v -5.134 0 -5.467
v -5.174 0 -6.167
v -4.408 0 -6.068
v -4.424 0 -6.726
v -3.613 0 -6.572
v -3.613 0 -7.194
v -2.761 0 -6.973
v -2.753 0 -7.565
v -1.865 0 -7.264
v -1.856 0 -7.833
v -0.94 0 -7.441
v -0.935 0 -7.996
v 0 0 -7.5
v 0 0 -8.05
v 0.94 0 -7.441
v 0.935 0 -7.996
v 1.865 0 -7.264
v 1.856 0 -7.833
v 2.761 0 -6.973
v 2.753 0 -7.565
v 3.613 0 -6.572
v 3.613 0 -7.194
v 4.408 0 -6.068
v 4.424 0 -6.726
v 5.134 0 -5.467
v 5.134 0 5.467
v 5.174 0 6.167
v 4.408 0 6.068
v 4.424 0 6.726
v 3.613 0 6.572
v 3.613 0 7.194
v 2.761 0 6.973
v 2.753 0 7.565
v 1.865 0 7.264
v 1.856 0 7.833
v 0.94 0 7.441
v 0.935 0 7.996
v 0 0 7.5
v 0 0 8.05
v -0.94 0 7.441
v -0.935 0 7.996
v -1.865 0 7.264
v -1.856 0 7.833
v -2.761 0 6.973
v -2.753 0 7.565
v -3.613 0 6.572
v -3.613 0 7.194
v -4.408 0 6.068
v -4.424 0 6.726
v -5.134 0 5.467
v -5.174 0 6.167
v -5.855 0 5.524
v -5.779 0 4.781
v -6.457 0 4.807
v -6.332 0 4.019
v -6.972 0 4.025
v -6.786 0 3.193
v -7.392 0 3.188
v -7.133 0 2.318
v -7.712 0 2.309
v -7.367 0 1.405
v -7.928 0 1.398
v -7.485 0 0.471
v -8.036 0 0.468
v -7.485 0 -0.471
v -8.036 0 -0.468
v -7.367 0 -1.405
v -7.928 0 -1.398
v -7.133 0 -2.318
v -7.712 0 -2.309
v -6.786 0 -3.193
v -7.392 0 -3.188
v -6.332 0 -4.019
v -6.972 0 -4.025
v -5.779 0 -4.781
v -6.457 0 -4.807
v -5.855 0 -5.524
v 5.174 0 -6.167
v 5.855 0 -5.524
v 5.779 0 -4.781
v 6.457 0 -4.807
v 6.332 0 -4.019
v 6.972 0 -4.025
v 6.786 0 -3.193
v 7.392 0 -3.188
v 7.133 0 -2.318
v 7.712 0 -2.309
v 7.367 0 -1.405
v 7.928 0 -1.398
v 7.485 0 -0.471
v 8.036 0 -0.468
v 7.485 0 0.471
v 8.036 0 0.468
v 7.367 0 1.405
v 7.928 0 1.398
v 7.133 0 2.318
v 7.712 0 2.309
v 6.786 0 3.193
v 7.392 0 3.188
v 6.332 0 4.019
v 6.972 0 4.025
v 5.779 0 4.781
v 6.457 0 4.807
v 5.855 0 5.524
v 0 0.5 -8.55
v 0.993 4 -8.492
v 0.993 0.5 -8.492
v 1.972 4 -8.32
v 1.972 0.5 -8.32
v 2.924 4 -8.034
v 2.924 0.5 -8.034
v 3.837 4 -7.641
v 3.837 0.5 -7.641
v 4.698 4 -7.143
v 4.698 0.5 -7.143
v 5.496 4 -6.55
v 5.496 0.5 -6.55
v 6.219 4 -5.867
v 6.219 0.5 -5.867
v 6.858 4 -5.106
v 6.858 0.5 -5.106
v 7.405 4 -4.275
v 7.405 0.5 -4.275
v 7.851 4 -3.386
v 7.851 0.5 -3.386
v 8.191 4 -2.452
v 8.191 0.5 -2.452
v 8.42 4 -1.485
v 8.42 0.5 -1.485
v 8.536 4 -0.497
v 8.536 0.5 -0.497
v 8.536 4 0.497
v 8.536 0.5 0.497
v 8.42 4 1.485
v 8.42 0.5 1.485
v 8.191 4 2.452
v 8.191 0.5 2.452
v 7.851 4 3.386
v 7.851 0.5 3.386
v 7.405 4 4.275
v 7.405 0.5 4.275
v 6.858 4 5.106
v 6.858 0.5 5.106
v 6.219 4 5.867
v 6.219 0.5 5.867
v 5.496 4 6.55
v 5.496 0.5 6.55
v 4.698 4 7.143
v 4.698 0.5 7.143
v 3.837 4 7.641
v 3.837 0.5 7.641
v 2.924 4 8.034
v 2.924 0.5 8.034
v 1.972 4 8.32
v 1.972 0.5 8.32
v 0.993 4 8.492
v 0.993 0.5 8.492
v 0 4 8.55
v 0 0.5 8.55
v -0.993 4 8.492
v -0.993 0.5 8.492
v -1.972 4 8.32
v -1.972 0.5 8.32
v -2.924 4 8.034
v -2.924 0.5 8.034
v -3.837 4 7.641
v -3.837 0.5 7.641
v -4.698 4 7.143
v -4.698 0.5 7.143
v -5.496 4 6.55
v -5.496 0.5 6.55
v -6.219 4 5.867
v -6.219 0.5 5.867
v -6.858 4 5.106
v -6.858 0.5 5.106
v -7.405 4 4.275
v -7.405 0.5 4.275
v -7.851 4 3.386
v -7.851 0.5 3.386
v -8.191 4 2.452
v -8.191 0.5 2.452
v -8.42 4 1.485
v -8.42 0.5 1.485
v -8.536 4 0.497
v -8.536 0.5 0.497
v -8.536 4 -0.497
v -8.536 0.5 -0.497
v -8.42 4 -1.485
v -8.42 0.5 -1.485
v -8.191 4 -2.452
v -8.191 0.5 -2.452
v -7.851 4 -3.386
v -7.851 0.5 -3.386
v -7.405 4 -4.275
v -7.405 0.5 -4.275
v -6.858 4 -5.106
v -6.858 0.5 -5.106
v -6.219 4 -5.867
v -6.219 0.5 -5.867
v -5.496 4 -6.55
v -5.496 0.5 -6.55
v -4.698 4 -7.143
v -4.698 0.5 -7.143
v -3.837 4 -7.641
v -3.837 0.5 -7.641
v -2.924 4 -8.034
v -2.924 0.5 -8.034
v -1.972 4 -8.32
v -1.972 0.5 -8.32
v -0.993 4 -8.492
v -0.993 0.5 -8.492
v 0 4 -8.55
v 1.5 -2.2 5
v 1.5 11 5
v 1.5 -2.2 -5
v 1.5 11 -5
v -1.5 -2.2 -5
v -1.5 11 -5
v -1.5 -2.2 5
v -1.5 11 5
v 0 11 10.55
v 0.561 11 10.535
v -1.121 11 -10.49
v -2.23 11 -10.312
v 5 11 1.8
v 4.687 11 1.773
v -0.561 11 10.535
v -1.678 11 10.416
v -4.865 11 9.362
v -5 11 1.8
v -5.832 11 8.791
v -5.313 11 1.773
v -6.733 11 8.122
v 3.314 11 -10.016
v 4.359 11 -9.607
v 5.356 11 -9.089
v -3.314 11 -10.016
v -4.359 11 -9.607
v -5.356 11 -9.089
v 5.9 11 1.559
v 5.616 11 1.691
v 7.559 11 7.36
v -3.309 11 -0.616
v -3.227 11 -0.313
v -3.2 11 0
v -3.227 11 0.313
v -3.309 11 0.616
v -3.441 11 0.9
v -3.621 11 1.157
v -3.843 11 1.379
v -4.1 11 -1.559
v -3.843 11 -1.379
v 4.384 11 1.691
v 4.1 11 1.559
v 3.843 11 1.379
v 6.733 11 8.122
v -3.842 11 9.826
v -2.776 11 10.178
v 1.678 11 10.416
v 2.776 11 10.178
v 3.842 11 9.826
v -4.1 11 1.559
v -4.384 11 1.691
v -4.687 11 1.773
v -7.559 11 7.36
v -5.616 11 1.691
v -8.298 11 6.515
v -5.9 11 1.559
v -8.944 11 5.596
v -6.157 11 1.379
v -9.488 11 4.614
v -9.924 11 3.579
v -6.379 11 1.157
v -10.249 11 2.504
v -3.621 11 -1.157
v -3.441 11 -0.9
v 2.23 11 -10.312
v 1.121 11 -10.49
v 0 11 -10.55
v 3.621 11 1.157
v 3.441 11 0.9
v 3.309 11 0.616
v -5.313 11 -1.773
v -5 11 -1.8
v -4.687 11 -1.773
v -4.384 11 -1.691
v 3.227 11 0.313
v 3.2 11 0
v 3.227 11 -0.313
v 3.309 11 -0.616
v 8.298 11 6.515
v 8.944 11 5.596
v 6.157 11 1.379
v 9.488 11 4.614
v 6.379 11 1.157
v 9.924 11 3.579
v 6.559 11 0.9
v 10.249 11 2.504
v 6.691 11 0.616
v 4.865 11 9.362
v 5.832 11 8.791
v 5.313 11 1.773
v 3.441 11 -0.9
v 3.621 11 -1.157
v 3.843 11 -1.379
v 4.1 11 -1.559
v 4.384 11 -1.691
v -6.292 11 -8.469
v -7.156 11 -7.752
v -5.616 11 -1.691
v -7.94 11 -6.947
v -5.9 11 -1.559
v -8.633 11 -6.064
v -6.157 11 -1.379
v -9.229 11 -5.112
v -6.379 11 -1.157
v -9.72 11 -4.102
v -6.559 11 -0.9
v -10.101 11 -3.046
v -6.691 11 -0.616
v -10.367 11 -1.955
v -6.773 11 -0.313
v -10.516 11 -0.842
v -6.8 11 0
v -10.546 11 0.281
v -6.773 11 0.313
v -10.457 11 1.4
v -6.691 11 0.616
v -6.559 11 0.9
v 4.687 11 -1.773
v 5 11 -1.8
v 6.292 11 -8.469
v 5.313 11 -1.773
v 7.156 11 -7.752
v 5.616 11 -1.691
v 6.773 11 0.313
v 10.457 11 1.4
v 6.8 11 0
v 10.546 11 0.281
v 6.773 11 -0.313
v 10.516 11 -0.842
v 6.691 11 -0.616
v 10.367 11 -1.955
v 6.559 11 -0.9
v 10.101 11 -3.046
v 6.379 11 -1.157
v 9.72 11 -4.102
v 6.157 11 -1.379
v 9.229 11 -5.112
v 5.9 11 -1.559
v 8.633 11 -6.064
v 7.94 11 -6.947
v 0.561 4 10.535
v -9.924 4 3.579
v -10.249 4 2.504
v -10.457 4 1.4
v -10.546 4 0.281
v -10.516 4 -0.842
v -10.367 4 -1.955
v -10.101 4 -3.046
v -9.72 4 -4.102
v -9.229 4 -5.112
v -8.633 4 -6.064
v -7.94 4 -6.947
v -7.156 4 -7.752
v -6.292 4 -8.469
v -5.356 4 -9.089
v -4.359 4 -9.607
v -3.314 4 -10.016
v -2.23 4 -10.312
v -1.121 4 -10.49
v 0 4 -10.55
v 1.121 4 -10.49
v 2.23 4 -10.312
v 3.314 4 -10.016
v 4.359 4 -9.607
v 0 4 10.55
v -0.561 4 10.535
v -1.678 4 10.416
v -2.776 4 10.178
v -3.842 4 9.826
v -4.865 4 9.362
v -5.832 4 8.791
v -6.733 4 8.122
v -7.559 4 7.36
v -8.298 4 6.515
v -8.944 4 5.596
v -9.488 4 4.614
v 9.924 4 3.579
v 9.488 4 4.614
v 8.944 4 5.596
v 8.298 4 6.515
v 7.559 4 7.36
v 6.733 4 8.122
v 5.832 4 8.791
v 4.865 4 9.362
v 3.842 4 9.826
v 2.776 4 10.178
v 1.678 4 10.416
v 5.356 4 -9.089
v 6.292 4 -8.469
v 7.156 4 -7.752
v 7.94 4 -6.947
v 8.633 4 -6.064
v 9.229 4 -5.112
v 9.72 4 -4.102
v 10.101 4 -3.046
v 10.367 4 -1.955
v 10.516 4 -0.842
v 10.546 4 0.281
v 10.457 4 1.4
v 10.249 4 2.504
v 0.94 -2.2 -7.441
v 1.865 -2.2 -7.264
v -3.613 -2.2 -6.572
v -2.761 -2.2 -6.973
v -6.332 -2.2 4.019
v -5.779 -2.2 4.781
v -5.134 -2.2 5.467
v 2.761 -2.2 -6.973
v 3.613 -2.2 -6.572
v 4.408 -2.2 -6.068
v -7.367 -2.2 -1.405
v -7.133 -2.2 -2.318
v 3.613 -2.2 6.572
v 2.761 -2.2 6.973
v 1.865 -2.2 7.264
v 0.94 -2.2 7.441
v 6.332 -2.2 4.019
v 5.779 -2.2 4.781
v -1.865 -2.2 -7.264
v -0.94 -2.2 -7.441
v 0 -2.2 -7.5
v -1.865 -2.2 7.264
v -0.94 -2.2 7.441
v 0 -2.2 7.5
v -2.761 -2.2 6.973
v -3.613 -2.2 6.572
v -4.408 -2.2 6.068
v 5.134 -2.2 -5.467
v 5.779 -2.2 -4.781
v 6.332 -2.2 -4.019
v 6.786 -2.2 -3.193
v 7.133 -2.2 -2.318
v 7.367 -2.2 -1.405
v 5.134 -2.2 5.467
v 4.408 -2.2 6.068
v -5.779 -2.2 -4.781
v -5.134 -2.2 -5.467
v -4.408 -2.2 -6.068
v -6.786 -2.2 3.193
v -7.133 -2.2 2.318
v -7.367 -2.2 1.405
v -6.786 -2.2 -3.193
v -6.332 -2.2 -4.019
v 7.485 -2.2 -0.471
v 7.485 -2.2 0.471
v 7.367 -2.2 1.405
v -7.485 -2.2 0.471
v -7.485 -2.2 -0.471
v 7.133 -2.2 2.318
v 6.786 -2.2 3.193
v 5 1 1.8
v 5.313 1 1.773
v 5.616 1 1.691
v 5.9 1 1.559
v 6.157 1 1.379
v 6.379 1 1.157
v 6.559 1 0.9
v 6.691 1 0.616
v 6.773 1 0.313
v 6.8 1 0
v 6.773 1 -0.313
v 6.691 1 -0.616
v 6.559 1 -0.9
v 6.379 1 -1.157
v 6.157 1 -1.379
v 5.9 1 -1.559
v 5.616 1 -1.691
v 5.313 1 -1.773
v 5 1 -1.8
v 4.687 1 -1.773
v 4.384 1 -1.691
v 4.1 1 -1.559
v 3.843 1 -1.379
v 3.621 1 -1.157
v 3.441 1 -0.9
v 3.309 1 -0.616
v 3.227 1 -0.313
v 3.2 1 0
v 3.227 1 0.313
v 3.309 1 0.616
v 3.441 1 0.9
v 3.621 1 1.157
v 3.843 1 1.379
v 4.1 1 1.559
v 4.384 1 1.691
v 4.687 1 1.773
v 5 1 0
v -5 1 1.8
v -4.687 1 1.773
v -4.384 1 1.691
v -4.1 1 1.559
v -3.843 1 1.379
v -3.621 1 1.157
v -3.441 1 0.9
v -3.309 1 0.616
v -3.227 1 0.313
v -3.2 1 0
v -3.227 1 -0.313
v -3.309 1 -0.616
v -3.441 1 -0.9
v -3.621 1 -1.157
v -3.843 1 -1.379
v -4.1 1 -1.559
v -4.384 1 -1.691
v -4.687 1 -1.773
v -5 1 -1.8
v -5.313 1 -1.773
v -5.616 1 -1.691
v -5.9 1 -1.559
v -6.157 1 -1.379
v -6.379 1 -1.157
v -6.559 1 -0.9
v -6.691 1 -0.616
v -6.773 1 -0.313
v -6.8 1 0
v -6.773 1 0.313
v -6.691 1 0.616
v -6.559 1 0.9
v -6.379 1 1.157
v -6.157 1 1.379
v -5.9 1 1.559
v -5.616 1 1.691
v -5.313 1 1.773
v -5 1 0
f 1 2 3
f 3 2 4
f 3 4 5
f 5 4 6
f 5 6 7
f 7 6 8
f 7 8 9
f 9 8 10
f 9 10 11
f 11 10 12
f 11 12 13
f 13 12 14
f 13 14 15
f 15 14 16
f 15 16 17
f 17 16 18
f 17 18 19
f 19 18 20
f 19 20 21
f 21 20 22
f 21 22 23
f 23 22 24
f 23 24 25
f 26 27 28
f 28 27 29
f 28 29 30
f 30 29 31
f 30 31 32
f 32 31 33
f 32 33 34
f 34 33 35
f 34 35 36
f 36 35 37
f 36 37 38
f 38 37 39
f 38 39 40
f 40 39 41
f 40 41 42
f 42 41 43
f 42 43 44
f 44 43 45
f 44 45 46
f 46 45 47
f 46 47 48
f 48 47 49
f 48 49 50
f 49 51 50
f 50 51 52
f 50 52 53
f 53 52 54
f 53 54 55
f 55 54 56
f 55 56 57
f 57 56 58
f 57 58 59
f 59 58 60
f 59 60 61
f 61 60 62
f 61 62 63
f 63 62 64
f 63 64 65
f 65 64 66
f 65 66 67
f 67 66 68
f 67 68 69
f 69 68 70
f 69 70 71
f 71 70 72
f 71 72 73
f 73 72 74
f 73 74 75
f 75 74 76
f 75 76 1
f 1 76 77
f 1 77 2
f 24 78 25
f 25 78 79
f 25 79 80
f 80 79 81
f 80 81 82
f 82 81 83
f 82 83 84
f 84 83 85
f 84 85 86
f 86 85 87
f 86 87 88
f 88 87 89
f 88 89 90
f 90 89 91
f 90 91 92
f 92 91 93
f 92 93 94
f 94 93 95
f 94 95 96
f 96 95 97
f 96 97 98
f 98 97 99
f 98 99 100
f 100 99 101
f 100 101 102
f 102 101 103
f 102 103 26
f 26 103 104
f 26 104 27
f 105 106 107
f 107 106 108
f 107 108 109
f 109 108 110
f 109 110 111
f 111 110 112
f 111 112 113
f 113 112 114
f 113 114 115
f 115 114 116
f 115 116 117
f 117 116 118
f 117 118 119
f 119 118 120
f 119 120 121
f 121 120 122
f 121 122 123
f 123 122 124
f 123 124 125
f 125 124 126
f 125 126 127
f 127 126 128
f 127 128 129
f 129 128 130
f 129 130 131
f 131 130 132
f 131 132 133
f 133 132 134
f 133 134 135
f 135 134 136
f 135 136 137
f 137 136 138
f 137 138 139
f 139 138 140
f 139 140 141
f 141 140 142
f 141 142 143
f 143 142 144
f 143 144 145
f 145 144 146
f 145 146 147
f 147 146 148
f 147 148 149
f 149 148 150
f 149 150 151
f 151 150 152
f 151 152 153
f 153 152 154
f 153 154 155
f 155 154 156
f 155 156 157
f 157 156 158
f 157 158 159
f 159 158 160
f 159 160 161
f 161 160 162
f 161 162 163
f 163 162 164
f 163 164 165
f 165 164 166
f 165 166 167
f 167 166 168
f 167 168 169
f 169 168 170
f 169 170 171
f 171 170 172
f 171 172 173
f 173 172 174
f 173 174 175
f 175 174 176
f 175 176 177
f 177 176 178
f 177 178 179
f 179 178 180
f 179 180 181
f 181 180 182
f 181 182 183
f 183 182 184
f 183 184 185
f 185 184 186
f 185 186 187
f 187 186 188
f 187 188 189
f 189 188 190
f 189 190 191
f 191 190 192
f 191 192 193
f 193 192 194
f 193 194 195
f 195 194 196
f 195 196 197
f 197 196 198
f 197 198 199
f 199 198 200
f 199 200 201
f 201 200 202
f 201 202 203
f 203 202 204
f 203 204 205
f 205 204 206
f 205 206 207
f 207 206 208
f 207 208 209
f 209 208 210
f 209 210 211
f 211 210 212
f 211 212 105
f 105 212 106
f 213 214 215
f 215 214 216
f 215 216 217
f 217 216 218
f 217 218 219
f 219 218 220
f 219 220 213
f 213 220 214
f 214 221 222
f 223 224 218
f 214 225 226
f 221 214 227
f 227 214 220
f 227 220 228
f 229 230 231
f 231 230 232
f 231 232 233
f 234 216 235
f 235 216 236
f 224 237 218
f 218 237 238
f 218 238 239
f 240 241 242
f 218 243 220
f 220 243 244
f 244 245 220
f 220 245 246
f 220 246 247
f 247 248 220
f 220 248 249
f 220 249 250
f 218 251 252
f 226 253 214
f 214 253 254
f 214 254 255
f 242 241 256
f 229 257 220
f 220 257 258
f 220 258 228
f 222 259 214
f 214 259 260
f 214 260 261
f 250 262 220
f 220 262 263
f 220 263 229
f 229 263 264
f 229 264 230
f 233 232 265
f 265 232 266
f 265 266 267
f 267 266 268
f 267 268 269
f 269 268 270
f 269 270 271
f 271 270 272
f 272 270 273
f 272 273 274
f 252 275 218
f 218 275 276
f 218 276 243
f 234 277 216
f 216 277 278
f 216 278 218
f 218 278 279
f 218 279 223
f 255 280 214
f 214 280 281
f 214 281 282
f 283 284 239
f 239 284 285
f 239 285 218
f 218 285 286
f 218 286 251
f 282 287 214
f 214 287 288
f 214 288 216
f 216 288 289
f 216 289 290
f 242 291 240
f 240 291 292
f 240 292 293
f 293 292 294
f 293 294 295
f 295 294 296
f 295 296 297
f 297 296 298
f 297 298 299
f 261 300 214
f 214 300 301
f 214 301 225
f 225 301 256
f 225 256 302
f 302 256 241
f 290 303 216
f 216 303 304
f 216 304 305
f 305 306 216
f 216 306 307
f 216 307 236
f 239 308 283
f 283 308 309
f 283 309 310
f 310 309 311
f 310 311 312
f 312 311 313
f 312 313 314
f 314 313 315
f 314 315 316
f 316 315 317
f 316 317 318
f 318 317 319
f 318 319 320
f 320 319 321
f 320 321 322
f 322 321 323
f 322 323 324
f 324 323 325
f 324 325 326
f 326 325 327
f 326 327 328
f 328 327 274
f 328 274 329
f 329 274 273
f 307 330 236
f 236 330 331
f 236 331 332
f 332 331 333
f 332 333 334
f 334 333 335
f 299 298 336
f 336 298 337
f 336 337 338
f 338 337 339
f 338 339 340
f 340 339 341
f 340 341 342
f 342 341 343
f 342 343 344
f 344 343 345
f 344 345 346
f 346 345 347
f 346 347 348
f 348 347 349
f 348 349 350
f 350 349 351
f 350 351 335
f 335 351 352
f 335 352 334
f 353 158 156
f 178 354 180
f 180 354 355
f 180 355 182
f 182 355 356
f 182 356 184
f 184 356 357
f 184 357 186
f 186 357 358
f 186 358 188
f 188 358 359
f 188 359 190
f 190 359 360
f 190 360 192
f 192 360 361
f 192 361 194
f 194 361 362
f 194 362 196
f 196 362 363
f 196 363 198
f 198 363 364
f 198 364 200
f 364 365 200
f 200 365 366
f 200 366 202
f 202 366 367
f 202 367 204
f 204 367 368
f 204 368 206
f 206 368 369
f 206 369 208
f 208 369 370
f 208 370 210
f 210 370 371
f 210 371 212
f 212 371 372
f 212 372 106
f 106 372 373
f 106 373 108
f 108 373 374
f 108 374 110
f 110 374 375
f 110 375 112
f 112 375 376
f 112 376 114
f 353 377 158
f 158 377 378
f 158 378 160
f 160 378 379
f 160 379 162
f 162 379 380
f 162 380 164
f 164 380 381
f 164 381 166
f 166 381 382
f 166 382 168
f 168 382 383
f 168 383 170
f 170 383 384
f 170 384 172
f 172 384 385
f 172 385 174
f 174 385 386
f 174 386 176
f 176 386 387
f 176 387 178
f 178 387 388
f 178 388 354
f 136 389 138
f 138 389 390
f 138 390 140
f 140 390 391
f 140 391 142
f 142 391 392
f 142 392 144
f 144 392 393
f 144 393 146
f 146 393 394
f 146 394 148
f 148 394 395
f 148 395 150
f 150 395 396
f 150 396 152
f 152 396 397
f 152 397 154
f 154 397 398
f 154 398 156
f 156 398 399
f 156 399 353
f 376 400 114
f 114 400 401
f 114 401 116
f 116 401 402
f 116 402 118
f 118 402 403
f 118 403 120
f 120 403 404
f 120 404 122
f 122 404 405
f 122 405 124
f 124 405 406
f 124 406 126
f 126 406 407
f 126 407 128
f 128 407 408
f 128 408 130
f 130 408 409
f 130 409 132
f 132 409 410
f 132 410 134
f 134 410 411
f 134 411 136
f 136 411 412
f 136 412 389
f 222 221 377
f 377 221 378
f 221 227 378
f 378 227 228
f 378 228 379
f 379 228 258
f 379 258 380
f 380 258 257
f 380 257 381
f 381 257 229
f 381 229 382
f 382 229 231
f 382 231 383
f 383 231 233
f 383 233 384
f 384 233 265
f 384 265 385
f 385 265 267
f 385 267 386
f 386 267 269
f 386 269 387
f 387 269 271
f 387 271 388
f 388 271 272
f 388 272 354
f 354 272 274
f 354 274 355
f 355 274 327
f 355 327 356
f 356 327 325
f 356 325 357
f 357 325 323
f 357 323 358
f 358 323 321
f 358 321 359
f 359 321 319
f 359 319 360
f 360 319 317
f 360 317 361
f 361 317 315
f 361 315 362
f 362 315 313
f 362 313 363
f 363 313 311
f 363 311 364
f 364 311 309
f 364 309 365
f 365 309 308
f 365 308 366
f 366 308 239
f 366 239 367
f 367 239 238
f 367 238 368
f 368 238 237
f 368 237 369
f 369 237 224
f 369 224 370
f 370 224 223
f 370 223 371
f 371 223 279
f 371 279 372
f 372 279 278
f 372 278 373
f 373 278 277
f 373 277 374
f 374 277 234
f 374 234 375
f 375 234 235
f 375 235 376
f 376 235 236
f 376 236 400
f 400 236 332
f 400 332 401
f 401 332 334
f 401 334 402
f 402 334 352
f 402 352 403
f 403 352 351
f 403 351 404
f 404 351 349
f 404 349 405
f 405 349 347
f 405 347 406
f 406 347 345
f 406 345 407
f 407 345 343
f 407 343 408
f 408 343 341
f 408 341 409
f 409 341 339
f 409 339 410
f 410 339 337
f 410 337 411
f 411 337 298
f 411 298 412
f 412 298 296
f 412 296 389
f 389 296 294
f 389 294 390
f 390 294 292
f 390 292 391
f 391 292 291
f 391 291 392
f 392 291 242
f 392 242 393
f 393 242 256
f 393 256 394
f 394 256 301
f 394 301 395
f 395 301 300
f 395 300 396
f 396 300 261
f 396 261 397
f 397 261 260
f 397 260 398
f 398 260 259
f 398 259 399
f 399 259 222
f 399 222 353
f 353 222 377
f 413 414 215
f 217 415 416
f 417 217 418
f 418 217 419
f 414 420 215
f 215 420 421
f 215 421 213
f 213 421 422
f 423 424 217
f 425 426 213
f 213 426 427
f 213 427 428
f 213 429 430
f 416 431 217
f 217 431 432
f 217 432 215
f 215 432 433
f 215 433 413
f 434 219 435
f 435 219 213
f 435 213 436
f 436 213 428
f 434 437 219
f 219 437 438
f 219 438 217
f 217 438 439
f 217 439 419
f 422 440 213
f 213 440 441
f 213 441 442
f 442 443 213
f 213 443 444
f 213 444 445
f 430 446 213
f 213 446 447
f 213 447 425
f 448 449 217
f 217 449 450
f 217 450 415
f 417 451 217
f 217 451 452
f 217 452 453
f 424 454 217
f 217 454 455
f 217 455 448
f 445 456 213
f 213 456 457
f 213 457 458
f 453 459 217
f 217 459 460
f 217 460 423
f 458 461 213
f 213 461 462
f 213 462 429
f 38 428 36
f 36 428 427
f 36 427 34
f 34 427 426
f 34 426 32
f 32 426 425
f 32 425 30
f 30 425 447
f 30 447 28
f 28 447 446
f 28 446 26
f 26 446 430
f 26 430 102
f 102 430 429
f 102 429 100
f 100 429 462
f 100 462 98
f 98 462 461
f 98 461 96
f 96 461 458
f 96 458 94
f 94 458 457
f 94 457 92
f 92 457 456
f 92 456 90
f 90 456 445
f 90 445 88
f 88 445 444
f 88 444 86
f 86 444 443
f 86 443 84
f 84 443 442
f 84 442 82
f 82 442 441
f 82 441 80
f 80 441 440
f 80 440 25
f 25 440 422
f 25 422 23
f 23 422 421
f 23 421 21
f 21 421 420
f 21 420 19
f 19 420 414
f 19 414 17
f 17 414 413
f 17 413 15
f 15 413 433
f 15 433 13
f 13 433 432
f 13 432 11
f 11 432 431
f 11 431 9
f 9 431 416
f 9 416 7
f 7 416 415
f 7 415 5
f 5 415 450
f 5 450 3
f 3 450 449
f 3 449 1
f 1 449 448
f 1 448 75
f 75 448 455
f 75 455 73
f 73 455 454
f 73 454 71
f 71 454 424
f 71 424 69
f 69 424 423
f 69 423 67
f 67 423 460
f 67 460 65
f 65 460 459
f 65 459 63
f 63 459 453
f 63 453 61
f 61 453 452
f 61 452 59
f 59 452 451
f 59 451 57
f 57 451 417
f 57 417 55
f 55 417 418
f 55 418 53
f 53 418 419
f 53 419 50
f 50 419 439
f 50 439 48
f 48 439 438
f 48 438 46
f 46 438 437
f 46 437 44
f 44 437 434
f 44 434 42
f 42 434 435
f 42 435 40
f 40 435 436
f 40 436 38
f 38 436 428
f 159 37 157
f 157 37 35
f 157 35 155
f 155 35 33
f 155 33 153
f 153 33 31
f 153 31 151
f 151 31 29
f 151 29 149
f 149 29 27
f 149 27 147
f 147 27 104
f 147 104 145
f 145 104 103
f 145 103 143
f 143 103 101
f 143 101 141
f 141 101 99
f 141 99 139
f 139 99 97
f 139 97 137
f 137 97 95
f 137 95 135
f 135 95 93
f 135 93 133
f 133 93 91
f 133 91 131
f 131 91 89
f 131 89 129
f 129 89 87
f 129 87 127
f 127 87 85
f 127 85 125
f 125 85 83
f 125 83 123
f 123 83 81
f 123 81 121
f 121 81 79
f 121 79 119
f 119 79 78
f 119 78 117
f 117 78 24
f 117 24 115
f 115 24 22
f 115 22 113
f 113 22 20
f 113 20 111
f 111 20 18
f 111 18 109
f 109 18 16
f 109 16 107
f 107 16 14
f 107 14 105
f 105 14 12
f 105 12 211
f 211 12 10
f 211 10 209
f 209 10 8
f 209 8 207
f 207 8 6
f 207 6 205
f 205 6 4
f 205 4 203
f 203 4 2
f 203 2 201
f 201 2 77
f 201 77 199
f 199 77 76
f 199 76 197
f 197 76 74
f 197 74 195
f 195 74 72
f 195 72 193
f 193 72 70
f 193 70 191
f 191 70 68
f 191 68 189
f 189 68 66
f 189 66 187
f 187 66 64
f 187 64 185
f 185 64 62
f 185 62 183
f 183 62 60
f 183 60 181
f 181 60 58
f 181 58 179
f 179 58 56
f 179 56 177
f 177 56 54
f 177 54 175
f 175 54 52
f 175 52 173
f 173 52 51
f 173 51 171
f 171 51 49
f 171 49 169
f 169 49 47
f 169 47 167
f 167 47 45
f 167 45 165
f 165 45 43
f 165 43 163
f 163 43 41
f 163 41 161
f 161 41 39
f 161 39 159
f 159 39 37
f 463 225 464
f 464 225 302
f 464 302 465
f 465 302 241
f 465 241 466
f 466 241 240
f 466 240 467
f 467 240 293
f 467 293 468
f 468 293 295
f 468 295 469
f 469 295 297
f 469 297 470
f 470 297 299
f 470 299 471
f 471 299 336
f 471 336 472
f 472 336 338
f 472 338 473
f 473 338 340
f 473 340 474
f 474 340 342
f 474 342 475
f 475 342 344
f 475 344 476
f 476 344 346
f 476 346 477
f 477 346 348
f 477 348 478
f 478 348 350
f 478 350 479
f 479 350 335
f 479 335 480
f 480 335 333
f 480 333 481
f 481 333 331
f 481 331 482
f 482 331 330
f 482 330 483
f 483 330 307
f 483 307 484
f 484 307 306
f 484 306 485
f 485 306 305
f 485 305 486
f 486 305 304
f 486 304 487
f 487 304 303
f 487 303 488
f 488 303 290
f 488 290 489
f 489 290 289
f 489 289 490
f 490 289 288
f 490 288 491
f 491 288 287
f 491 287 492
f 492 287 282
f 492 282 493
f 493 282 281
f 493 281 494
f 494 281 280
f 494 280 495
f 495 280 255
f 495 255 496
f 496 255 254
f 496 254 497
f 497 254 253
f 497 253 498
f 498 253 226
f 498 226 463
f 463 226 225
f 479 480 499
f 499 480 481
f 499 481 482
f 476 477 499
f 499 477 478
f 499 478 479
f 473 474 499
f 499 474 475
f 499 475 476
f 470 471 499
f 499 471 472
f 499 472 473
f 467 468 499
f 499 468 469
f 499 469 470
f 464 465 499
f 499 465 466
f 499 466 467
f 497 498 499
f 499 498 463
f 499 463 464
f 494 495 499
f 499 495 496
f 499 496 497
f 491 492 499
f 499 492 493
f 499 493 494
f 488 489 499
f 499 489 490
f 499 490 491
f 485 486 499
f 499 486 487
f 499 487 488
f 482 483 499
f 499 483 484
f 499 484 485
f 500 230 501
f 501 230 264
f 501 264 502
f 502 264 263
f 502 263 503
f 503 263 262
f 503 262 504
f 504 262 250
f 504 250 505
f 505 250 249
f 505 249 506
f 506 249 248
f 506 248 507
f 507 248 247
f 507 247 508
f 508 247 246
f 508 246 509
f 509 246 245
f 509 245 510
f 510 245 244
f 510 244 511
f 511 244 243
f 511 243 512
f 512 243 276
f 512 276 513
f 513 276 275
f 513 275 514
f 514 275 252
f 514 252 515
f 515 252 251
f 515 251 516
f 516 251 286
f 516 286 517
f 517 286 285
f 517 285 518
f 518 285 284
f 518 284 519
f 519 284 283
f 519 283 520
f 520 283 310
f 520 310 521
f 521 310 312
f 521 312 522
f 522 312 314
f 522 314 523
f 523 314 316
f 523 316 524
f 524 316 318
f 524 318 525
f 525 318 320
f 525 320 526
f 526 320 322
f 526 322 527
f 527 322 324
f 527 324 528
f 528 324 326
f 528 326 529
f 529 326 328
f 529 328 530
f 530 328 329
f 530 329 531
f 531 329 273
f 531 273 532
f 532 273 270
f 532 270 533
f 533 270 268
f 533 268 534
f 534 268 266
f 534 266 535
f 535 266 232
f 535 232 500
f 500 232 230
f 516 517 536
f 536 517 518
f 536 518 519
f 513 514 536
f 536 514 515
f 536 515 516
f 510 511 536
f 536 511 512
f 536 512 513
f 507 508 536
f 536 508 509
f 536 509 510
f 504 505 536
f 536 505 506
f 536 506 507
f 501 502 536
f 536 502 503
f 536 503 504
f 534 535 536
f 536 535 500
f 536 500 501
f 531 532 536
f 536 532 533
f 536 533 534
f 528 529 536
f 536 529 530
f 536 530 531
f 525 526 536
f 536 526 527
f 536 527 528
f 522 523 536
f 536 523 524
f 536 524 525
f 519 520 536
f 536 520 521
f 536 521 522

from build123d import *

# Parameters (mm, degrees)
SKIZZE1_R                       = 8.55
SKIZZE1_W                       = 3
SKIZZE1_H                       = 10
AUFSATZ_LINEAR_AUSTRAGEN1_DEPTH = 4
SKIZZE2_R                       = 10.55
SKIZZE2_W                       = 3
SKIZZE2_H                       = 10
AUFSATZ_LINEAR_AUSTRAGEN2_DEPTH = 7
SKIZZE3_R                       = 7.5
SKIZZE3_W                       = 3
SKIZZE3_H                       = 10
AUFSATZ_LINEAR_AUSTRAGEN3_DEPTH = 2.2
FASE1_SIZE                      = 0.5
SKIZZE4_R                       = 1.8
SCHNITT_LINEAR_AUSTRAGEN1_DEPTH = 10


with BuildPart() as part:
    # Skizze1 → Aufsatz-Linear austragen1 (new body)
    with BuildSketch(Plane(origin=(0, 0, 0), x_dir=(1, 0, 0), z_dir=(0, 1, 0))):
        Circle(SKIZZE1_R)
        Rectangle(SKIZZE1_W, SKIZZE1_H, mode=Mode.SUBTRACT)
    extrude(amount=AUFSATZ_LINEAR_AUSTRAGEN1_DEPTH)

    # Skizze2 → Aufsatz-Linear austragen2 (add)
    with BuildSketch(Plane(origin=(0, 4, 0), x_dir=(1, 0, 0), z_dir=(0, 1, 0))):
        Circle(SKIZZE2_R)
        Rectangle(SKIZZE2_W, SKIZZE2_H, mode=Mode.SUBTRACT)
    extrude(amount=AUFSATZ_LINEAR_AUSTRAGEN2_DEPTH)

    # Skizze3 → Aufsatz-Linear austragen3 (add)
    with BuildSketch(Plane.XZ):
        Circle(SKIZZE3_R)
        Rectangle(SKIZZE3_W, SKIZZE3_H, mode=Mode.SUBTRACT)
    extrude(amount=AUFSATZ_LINEAR_AUSTRAGEN3_DEPTH)

    # Fase1
    fase1_edges = [part.edges().sort_by_distance(p)[0] for p in [
        (-8.55, 0, 0),
    ]]
    chamfer(fase1_edges, length=FASE1_SIZE)

    # Skizze4 → Schnitt-Linear austragen1 (cut)
    with BuildSketch(Plane.XZ.offset(-11)):
        with Locations((-5, 0)):
            Circle(SKIZZE4_R)
        with Locations((5, 0)):
            Circle(SKIZZE4_R)
    extrude(amount=SCHNITT_LINEAR_AUSTRAGEN1_DEPTH, mode=Mode.SUBTRACT)


solid = part.part
